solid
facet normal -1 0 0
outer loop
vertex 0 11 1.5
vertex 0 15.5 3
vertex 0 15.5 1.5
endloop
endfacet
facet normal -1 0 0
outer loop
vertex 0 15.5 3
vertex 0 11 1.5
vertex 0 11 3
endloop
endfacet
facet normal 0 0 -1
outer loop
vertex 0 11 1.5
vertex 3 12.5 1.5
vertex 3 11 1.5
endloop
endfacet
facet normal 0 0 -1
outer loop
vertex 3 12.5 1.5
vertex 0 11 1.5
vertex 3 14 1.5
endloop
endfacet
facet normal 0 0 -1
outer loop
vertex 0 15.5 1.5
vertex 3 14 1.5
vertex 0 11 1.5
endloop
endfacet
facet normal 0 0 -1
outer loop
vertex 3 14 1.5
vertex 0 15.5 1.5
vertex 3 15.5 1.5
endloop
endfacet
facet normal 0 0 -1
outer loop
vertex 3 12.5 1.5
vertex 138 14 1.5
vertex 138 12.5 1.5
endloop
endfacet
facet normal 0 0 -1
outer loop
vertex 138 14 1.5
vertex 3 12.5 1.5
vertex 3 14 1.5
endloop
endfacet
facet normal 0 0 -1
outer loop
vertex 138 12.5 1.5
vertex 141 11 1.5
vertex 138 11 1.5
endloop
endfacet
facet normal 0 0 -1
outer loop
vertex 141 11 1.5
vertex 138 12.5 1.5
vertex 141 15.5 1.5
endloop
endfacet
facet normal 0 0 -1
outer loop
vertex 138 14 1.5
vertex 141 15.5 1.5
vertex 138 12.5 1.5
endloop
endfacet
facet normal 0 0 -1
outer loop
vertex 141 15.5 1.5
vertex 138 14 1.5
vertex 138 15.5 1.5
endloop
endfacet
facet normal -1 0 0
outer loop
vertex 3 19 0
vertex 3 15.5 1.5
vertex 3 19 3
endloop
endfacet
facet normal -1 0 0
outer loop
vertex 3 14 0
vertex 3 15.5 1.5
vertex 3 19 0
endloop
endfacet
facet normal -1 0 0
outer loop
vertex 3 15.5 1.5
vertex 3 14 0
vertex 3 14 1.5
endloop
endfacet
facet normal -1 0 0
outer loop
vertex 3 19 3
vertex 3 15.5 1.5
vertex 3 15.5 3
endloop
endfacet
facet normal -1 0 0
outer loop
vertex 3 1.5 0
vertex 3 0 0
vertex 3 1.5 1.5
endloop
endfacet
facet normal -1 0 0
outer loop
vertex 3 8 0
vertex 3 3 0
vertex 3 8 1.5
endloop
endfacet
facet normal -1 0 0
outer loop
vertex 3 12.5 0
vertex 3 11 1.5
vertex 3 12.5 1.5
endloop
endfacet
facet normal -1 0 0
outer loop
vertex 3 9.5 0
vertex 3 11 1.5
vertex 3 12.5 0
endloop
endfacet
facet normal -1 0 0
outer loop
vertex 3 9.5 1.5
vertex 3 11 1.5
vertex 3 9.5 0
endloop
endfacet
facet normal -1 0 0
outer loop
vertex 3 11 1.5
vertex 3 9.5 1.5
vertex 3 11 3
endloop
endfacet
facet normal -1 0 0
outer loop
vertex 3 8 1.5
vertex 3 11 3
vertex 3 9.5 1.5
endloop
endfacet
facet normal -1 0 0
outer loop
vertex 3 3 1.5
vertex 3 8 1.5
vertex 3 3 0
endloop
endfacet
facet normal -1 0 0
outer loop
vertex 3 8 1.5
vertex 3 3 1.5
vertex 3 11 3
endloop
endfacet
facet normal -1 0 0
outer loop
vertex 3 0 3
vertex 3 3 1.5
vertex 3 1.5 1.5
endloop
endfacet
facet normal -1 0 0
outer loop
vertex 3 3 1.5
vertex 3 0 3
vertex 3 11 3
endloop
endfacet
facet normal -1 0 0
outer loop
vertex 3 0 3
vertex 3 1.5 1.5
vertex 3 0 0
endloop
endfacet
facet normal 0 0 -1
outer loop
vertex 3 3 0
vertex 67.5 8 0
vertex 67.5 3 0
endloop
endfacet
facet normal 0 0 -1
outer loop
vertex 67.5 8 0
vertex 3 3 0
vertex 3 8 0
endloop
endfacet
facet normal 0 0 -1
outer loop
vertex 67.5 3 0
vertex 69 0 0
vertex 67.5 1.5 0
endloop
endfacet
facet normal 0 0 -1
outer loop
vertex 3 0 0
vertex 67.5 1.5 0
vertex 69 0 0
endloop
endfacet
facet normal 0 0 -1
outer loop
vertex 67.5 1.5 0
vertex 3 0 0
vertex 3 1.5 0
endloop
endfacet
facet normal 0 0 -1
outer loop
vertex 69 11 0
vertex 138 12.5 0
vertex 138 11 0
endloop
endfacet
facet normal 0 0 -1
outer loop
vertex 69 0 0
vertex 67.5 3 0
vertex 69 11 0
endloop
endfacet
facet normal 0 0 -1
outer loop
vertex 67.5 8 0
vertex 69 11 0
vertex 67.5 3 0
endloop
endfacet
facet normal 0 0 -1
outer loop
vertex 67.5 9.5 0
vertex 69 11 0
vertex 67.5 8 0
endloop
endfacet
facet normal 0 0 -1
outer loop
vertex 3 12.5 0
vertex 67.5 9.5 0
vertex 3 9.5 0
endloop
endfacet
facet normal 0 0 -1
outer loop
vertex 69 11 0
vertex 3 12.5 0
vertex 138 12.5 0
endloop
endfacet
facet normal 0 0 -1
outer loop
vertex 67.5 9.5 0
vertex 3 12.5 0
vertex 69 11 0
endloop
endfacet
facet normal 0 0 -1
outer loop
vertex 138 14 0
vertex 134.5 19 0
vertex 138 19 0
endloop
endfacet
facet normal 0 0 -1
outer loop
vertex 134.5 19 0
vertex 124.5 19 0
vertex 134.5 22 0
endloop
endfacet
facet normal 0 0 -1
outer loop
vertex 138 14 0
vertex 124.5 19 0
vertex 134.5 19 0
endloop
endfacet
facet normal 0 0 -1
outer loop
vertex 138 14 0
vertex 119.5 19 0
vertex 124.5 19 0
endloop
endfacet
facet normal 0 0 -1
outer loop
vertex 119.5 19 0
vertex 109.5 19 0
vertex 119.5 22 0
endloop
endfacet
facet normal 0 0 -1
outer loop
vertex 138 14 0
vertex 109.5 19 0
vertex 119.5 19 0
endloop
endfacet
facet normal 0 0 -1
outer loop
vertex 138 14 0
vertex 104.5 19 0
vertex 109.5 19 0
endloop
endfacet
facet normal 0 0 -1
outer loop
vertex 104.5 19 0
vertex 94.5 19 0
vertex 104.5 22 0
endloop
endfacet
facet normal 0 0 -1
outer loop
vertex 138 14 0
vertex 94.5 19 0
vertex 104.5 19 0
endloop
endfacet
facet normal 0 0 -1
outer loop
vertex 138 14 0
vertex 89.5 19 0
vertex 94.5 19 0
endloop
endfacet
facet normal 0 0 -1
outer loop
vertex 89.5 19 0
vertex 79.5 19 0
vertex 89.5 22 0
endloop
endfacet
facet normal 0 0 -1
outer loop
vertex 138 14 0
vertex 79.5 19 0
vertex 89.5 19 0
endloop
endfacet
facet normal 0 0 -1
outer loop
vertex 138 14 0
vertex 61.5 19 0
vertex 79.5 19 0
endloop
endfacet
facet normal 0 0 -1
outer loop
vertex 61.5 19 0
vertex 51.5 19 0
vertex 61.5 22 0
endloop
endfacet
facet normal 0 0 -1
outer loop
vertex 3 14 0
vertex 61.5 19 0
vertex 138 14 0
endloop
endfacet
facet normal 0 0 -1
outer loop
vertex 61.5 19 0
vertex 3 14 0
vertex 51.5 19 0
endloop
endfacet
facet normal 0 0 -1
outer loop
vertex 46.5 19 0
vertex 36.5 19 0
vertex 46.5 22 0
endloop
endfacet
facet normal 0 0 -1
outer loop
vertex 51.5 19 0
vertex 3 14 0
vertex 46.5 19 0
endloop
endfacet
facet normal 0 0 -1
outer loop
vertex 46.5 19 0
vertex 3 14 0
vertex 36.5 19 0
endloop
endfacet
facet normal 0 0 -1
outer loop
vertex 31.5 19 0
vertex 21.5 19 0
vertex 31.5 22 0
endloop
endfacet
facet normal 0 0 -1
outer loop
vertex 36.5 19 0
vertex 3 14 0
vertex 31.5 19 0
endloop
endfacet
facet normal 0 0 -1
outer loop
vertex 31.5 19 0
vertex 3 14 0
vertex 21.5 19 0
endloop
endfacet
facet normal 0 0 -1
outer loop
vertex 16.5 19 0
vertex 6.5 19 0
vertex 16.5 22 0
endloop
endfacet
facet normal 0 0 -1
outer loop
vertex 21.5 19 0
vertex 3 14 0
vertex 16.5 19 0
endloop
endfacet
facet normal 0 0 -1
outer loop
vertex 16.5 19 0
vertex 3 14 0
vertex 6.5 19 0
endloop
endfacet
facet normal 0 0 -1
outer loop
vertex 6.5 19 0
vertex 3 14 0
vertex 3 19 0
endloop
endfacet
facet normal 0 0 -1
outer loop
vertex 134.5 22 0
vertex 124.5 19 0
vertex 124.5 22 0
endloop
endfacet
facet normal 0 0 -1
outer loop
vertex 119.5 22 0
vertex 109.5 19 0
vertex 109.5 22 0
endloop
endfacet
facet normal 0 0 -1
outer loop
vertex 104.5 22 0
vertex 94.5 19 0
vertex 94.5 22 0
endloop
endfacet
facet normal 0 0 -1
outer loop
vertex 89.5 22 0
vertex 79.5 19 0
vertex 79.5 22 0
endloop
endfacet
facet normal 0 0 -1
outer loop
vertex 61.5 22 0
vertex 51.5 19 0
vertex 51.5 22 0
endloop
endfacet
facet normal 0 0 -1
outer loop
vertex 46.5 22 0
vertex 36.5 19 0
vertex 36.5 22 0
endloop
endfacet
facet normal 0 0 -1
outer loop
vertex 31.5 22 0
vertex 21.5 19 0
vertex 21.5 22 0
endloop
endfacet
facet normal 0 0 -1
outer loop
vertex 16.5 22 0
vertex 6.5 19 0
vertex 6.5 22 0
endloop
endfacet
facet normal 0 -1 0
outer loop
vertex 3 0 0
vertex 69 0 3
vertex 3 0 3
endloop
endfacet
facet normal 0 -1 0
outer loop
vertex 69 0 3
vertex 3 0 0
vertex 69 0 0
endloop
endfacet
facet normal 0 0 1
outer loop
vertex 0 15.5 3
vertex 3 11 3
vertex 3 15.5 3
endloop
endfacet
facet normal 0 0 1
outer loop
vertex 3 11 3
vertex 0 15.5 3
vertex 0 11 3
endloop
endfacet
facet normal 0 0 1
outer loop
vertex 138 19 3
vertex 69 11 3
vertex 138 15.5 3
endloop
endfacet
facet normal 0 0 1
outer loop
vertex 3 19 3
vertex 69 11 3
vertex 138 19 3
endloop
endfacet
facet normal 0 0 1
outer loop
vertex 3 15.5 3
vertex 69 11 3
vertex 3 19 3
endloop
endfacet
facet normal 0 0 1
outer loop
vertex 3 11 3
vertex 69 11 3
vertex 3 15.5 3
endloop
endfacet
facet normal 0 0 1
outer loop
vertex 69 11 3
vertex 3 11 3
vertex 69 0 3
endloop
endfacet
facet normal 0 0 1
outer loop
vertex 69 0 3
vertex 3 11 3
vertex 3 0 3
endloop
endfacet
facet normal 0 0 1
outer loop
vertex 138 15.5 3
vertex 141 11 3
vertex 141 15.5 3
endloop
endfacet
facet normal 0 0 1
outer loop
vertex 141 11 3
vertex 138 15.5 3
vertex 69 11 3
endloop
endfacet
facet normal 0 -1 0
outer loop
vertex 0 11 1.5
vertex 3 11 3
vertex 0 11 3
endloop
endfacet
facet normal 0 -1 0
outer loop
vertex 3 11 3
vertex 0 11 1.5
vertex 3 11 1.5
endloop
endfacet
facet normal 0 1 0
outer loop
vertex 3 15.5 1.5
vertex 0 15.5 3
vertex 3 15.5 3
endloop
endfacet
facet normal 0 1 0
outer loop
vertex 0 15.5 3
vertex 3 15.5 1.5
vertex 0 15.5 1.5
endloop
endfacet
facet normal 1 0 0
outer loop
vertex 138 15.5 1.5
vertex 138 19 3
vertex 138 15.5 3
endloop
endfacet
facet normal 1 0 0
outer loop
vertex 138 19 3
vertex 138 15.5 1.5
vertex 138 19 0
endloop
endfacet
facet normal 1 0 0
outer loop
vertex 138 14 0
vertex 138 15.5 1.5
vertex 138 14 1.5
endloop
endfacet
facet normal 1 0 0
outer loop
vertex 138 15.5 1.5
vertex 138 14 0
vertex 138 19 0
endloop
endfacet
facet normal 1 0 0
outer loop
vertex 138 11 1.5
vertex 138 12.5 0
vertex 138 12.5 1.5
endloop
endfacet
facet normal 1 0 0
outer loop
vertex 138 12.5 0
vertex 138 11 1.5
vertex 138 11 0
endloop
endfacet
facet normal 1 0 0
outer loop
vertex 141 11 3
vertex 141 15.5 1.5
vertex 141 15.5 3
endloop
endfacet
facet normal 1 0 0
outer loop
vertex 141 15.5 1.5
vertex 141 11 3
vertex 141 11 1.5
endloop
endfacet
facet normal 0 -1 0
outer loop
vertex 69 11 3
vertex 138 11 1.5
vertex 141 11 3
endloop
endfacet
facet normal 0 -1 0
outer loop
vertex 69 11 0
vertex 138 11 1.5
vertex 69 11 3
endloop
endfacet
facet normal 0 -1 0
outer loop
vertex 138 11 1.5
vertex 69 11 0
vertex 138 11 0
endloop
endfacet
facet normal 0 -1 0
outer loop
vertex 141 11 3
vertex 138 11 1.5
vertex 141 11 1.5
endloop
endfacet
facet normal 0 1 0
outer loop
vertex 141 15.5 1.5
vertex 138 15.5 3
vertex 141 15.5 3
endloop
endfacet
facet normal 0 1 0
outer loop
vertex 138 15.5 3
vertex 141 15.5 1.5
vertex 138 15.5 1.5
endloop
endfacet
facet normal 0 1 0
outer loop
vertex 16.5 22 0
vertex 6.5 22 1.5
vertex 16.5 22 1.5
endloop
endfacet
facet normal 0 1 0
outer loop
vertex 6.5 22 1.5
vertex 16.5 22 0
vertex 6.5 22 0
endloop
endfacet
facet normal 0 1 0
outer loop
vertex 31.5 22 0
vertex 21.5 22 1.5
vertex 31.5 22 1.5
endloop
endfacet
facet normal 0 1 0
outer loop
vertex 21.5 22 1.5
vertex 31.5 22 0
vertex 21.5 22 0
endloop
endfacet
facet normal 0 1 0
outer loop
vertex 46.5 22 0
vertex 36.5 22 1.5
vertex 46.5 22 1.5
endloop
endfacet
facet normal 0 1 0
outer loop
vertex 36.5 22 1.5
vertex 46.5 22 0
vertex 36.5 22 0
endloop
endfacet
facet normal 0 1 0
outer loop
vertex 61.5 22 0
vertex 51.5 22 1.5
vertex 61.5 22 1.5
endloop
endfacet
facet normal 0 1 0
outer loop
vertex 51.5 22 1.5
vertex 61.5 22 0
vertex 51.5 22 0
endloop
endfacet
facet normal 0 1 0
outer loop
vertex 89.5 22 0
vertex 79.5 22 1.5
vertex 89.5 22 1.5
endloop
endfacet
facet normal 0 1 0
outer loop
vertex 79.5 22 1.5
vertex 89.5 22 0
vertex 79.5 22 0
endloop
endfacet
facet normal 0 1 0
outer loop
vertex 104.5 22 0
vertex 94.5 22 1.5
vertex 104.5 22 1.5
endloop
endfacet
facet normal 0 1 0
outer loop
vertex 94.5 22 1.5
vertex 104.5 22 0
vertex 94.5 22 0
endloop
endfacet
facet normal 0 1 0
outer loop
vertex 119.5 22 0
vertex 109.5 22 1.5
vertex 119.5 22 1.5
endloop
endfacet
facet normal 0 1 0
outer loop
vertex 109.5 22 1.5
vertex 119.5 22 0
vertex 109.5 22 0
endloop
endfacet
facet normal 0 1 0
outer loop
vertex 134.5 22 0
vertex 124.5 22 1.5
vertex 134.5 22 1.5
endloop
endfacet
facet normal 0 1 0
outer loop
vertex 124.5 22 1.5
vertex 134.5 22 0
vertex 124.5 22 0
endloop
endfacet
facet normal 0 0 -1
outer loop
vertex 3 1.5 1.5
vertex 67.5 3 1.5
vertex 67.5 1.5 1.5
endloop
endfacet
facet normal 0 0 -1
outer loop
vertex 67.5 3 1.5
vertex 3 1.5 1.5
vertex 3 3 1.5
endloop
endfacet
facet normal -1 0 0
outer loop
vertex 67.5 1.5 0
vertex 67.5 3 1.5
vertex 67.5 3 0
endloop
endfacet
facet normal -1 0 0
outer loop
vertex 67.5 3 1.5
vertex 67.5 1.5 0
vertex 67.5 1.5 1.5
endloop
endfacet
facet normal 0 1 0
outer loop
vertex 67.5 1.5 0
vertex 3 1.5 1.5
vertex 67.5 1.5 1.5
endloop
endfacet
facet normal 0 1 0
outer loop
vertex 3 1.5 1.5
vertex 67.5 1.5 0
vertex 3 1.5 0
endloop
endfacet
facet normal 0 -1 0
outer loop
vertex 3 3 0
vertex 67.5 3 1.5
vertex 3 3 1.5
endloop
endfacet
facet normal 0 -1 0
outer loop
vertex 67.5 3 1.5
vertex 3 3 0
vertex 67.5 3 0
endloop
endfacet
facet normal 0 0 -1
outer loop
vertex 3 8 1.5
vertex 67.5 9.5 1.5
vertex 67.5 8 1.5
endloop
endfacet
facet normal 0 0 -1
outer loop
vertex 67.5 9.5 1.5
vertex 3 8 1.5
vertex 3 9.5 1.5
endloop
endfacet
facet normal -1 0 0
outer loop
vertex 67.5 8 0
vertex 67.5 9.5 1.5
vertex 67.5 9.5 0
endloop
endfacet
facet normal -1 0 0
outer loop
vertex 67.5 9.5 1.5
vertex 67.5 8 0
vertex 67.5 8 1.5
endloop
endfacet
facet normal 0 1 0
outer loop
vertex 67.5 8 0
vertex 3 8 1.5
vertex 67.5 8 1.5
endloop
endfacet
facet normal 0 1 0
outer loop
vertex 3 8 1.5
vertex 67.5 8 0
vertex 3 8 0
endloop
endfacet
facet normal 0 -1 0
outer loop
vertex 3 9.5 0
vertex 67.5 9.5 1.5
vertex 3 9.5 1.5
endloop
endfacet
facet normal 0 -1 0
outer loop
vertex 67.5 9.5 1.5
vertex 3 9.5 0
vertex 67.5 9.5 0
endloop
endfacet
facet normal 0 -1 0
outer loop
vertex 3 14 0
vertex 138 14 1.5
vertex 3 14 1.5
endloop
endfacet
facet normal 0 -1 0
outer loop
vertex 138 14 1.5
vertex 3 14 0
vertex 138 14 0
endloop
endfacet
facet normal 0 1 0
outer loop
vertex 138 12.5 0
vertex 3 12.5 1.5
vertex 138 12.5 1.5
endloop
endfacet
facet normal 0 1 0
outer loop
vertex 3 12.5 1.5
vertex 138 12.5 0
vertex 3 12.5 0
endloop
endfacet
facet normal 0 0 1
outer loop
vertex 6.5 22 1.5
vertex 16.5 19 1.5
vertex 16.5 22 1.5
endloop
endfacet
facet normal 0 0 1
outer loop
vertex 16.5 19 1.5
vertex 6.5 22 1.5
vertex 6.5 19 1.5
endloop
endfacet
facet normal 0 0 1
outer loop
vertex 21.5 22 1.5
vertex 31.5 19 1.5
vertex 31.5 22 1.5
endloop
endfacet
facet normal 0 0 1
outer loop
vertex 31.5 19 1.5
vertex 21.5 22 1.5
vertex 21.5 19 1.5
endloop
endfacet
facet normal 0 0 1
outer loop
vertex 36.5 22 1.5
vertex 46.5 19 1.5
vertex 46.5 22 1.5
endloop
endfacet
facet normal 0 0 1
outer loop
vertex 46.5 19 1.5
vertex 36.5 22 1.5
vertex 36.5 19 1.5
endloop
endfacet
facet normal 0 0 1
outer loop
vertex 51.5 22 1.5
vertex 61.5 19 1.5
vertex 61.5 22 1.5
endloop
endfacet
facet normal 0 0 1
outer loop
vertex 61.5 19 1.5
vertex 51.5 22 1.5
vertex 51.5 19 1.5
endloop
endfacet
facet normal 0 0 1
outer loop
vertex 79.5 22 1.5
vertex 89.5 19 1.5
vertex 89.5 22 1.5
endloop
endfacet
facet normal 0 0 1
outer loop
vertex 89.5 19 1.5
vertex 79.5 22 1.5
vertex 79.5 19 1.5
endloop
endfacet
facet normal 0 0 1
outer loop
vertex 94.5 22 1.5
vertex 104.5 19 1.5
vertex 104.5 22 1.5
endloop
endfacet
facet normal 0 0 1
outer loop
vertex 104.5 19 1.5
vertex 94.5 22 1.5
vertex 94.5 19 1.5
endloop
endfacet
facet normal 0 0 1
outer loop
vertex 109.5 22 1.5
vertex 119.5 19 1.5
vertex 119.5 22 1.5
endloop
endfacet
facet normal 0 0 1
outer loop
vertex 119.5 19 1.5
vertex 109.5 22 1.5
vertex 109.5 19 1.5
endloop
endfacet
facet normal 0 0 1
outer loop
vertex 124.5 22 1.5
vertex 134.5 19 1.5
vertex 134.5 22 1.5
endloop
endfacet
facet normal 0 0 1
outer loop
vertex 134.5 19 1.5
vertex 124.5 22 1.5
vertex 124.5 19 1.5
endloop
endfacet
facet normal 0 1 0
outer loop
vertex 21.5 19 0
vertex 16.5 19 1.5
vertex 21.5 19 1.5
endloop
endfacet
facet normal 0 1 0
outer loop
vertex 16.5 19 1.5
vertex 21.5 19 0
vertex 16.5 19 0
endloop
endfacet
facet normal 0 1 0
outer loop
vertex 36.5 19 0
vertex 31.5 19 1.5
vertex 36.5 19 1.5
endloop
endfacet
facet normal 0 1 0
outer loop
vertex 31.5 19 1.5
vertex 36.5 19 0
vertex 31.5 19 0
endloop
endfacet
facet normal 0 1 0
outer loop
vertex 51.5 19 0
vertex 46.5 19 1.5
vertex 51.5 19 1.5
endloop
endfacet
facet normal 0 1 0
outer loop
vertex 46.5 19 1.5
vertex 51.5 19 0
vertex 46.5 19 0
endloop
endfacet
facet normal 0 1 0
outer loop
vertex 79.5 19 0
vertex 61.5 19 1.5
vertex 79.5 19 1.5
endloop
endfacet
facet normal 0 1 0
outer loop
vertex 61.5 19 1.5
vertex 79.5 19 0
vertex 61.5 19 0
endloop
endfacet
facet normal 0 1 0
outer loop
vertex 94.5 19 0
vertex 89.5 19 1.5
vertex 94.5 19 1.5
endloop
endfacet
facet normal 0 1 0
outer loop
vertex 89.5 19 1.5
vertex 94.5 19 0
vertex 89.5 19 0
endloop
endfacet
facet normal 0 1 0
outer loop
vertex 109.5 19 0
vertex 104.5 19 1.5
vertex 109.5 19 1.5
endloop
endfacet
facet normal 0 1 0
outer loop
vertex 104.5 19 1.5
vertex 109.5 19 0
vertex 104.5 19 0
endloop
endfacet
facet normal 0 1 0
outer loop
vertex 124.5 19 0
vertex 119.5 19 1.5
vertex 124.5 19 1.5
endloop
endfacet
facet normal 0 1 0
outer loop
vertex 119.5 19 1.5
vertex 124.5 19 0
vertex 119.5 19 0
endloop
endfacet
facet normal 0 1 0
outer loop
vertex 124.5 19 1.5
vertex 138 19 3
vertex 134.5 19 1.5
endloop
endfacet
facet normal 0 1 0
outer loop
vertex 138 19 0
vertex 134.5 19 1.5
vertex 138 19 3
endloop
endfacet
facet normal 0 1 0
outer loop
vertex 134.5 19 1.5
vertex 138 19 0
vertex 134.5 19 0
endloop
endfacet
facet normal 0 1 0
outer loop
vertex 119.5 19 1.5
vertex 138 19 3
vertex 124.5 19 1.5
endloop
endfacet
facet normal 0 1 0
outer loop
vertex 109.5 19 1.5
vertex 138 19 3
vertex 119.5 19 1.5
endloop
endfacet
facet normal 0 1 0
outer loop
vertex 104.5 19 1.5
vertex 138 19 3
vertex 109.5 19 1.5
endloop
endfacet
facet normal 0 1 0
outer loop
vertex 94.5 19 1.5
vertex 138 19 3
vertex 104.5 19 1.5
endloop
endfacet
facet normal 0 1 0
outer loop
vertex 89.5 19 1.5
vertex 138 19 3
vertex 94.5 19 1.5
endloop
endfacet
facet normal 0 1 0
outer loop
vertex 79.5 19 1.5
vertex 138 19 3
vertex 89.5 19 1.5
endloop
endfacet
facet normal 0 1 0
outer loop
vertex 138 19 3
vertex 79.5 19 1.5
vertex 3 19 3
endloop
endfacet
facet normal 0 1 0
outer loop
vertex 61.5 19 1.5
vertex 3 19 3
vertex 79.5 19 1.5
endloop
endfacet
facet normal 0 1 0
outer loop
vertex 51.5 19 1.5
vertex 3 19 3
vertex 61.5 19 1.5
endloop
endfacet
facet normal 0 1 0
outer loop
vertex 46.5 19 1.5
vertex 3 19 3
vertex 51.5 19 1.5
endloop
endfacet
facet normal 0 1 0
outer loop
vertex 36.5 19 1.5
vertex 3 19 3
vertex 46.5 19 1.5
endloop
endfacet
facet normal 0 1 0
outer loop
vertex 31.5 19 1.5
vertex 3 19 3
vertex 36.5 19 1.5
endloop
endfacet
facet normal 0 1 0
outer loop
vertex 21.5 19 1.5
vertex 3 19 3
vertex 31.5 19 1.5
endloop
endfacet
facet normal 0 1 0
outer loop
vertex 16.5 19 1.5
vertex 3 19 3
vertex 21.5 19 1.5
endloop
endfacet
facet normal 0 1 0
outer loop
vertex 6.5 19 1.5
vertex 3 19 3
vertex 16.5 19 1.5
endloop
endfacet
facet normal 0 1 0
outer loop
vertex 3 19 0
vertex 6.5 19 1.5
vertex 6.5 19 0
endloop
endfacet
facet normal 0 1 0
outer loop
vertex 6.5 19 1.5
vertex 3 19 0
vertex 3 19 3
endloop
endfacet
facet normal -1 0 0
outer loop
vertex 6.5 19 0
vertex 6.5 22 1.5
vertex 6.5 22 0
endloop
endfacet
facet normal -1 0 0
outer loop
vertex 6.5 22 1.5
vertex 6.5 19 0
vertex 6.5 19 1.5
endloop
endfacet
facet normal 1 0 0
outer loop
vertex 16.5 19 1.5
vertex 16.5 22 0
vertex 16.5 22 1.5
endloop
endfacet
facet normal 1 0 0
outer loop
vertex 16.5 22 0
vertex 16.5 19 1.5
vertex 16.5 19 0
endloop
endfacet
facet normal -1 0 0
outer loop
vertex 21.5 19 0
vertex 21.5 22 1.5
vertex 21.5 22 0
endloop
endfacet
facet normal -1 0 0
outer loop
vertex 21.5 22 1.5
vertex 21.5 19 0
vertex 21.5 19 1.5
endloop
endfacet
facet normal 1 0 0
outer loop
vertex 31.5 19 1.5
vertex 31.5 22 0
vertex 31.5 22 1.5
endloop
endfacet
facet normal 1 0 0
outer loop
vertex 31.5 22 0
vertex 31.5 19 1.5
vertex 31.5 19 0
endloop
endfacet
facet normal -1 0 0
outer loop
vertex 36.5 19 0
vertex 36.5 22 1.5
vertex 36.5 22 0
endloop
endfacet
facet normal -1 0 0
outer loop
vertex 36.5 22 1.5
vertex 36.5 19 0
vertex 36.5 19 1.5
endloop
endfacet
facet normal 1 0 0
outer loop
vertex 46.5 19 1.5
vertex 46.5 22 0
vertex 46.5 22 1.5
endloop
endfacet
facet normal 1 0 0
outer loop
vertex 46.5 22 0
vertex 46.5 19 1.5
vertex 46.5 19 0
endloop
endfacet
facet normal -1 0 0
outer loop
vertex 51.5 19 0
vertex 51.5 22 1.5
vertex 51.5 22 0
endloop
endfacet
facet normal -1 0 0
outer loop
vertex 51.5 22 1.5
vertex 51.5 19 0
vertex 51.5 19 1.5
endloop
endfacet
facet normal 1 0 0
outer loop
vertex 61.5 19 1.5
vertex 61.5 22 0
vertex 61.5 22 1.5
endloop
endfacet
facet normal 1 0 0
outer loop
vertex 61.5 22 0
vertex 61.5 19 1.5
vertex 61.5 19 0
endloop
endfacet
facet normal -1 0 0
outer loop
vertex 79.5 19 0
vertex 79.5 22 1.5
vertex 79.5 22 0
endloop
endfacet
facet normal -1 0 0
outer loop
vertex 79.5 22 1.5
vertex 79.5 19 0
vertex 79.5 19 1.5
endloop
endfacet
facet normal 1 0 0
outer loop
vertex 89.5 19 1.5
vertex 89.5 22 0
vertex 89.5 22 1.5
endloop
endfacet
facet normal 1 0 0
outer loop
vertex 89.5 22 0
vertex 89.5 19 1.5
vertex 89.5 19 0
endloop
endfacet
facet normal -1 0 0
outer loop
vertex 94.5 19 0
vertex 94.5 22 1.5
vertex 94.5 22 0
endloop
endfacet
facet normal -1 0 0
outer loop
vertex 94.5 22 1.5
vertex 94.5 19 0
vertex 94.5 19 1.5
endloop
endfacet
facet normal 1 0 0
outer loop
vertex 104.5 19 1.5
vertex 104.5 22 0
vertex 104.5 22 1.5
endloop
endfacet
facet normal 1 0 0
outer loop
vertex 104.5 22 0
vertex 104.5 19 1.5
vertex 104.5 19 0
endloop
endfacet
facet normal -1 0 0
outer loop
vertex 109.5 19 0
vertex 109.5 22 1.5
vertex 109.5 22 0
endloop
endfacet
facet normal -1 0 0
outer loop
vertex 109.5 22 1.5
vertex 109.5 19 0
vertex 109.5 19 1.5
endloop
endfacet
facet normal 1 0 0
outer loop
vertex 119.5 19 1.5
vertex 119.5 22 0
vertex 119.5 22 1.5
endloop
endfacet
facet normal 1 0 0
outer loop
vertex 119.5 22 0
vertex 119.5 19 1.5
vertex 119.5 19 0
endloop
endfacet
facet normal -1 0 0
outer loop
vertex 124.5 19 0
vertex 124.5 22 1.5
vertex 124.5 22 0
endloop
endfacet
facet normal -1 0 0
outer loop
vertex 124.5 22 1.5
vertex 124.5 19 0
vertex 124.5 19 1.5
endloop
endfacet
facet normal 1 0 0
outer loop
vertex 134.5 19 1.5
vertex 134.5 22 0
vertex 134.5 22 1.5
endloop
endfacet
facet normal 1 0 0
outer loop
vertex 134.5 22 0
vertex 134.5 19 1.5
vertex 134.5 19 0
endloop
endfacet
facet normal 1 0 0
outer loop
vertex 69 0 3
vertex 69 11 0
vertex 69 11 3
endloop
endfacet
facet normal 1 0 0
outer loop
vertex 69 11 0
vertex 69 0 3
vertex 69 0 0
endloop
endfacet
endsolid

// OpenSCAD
board = 138;
edge = 1.5;

depth = 2 * edge;
width = board + 2 * edge;

groove = 1.5;
faceSpace = 5;
mountSpace = 3;
pcbSpace = 5;

notchSpacing = 5;
notchWidth = 10;
notchHeight = 3;

height =
	edge +
	groove +
	faceSpace +
	groove +
	mountSpace +
	groove +
	pcbSpace +
	notchHeight;

faceTop = edge;
mountTop = faceTop + groove + faceSpace;
pcbTop = mountTop + groove + mountSpace;
baseTop = pcbTop + groove + pcbSpace;

notchCount = 8;
notchGap = board - notchCount * (notchSpacing + notchWidth);
notch1Left = edge + notchSpacing;
notch2Left = notch1Left + notchSpacing + notchWidth;
notch3Left = notch2Left + notchSpacing + notchWidth;
notch4Left = notch3Left + notchSpacing + notchWidth;
notch5Left = notch4Left + notchGap + notchWidth;
notch6Left = notch5Left + notchSpacing + notchWidth;
notch7Left = notch6Left + notchSpacing + notchWidth;
notch8Left = notch7Left + notchSpacing + notchWidth;

module hole(x, y, z, cx, cy, cz)
{
	translate([x, y, z]) cube([cx, cy, cz]);
}

module grooveHole(y, cx)
{
	hole(edge, y, 0, cx, groove, edge);
}

module notchHole(x, cx)
{
	hole(x, baseTop, 0, cx, notchHeight, edge);
}

module sideNotch(x)
{
	hole(x, 0, 0, 2 * edge, height, edge);
	hole(x, 0, edge, 2 * edge, pcbTop - edge, edge);
	hole(x, pcbTop + 2 * edge, edge, 2 * edge, 2 * edge + groove, edge);
}

difference()
{
	cube([width, height, depth]);

	grooveHole(faceTop, board - 72);
	grooveHole(mountTop, board - 72);
	grooveHole(pcbTop, board);

	hole(0, baseTop, edge, width, notchHeight, edge);
	notchHole(0, notch1Left);
	notchHole(notch1Left + notchWidth, notchSpacing);
	notchHole(notch2Left + notchWidth, notchSpacing);
	notchHole(notch3Left + notchWidth, notchSpacing);
	notchHole(notch4Left + notchWidth, notchGap);
	notchHole(notch5Left + notchWidth, notchSpacing);
	notchHole(notch6Left + notchWidth, notchSpacing);
	notchHole(notch7Left + notchWidth, notchSpacing);
	notchHole(notch8Left + notchWidth, notchSpacing + edge);

	sideNotch(0);
	sideNotch(board);

	hole(width - 72, 0, 0, 72, pcbTop - edge, depth);
}
